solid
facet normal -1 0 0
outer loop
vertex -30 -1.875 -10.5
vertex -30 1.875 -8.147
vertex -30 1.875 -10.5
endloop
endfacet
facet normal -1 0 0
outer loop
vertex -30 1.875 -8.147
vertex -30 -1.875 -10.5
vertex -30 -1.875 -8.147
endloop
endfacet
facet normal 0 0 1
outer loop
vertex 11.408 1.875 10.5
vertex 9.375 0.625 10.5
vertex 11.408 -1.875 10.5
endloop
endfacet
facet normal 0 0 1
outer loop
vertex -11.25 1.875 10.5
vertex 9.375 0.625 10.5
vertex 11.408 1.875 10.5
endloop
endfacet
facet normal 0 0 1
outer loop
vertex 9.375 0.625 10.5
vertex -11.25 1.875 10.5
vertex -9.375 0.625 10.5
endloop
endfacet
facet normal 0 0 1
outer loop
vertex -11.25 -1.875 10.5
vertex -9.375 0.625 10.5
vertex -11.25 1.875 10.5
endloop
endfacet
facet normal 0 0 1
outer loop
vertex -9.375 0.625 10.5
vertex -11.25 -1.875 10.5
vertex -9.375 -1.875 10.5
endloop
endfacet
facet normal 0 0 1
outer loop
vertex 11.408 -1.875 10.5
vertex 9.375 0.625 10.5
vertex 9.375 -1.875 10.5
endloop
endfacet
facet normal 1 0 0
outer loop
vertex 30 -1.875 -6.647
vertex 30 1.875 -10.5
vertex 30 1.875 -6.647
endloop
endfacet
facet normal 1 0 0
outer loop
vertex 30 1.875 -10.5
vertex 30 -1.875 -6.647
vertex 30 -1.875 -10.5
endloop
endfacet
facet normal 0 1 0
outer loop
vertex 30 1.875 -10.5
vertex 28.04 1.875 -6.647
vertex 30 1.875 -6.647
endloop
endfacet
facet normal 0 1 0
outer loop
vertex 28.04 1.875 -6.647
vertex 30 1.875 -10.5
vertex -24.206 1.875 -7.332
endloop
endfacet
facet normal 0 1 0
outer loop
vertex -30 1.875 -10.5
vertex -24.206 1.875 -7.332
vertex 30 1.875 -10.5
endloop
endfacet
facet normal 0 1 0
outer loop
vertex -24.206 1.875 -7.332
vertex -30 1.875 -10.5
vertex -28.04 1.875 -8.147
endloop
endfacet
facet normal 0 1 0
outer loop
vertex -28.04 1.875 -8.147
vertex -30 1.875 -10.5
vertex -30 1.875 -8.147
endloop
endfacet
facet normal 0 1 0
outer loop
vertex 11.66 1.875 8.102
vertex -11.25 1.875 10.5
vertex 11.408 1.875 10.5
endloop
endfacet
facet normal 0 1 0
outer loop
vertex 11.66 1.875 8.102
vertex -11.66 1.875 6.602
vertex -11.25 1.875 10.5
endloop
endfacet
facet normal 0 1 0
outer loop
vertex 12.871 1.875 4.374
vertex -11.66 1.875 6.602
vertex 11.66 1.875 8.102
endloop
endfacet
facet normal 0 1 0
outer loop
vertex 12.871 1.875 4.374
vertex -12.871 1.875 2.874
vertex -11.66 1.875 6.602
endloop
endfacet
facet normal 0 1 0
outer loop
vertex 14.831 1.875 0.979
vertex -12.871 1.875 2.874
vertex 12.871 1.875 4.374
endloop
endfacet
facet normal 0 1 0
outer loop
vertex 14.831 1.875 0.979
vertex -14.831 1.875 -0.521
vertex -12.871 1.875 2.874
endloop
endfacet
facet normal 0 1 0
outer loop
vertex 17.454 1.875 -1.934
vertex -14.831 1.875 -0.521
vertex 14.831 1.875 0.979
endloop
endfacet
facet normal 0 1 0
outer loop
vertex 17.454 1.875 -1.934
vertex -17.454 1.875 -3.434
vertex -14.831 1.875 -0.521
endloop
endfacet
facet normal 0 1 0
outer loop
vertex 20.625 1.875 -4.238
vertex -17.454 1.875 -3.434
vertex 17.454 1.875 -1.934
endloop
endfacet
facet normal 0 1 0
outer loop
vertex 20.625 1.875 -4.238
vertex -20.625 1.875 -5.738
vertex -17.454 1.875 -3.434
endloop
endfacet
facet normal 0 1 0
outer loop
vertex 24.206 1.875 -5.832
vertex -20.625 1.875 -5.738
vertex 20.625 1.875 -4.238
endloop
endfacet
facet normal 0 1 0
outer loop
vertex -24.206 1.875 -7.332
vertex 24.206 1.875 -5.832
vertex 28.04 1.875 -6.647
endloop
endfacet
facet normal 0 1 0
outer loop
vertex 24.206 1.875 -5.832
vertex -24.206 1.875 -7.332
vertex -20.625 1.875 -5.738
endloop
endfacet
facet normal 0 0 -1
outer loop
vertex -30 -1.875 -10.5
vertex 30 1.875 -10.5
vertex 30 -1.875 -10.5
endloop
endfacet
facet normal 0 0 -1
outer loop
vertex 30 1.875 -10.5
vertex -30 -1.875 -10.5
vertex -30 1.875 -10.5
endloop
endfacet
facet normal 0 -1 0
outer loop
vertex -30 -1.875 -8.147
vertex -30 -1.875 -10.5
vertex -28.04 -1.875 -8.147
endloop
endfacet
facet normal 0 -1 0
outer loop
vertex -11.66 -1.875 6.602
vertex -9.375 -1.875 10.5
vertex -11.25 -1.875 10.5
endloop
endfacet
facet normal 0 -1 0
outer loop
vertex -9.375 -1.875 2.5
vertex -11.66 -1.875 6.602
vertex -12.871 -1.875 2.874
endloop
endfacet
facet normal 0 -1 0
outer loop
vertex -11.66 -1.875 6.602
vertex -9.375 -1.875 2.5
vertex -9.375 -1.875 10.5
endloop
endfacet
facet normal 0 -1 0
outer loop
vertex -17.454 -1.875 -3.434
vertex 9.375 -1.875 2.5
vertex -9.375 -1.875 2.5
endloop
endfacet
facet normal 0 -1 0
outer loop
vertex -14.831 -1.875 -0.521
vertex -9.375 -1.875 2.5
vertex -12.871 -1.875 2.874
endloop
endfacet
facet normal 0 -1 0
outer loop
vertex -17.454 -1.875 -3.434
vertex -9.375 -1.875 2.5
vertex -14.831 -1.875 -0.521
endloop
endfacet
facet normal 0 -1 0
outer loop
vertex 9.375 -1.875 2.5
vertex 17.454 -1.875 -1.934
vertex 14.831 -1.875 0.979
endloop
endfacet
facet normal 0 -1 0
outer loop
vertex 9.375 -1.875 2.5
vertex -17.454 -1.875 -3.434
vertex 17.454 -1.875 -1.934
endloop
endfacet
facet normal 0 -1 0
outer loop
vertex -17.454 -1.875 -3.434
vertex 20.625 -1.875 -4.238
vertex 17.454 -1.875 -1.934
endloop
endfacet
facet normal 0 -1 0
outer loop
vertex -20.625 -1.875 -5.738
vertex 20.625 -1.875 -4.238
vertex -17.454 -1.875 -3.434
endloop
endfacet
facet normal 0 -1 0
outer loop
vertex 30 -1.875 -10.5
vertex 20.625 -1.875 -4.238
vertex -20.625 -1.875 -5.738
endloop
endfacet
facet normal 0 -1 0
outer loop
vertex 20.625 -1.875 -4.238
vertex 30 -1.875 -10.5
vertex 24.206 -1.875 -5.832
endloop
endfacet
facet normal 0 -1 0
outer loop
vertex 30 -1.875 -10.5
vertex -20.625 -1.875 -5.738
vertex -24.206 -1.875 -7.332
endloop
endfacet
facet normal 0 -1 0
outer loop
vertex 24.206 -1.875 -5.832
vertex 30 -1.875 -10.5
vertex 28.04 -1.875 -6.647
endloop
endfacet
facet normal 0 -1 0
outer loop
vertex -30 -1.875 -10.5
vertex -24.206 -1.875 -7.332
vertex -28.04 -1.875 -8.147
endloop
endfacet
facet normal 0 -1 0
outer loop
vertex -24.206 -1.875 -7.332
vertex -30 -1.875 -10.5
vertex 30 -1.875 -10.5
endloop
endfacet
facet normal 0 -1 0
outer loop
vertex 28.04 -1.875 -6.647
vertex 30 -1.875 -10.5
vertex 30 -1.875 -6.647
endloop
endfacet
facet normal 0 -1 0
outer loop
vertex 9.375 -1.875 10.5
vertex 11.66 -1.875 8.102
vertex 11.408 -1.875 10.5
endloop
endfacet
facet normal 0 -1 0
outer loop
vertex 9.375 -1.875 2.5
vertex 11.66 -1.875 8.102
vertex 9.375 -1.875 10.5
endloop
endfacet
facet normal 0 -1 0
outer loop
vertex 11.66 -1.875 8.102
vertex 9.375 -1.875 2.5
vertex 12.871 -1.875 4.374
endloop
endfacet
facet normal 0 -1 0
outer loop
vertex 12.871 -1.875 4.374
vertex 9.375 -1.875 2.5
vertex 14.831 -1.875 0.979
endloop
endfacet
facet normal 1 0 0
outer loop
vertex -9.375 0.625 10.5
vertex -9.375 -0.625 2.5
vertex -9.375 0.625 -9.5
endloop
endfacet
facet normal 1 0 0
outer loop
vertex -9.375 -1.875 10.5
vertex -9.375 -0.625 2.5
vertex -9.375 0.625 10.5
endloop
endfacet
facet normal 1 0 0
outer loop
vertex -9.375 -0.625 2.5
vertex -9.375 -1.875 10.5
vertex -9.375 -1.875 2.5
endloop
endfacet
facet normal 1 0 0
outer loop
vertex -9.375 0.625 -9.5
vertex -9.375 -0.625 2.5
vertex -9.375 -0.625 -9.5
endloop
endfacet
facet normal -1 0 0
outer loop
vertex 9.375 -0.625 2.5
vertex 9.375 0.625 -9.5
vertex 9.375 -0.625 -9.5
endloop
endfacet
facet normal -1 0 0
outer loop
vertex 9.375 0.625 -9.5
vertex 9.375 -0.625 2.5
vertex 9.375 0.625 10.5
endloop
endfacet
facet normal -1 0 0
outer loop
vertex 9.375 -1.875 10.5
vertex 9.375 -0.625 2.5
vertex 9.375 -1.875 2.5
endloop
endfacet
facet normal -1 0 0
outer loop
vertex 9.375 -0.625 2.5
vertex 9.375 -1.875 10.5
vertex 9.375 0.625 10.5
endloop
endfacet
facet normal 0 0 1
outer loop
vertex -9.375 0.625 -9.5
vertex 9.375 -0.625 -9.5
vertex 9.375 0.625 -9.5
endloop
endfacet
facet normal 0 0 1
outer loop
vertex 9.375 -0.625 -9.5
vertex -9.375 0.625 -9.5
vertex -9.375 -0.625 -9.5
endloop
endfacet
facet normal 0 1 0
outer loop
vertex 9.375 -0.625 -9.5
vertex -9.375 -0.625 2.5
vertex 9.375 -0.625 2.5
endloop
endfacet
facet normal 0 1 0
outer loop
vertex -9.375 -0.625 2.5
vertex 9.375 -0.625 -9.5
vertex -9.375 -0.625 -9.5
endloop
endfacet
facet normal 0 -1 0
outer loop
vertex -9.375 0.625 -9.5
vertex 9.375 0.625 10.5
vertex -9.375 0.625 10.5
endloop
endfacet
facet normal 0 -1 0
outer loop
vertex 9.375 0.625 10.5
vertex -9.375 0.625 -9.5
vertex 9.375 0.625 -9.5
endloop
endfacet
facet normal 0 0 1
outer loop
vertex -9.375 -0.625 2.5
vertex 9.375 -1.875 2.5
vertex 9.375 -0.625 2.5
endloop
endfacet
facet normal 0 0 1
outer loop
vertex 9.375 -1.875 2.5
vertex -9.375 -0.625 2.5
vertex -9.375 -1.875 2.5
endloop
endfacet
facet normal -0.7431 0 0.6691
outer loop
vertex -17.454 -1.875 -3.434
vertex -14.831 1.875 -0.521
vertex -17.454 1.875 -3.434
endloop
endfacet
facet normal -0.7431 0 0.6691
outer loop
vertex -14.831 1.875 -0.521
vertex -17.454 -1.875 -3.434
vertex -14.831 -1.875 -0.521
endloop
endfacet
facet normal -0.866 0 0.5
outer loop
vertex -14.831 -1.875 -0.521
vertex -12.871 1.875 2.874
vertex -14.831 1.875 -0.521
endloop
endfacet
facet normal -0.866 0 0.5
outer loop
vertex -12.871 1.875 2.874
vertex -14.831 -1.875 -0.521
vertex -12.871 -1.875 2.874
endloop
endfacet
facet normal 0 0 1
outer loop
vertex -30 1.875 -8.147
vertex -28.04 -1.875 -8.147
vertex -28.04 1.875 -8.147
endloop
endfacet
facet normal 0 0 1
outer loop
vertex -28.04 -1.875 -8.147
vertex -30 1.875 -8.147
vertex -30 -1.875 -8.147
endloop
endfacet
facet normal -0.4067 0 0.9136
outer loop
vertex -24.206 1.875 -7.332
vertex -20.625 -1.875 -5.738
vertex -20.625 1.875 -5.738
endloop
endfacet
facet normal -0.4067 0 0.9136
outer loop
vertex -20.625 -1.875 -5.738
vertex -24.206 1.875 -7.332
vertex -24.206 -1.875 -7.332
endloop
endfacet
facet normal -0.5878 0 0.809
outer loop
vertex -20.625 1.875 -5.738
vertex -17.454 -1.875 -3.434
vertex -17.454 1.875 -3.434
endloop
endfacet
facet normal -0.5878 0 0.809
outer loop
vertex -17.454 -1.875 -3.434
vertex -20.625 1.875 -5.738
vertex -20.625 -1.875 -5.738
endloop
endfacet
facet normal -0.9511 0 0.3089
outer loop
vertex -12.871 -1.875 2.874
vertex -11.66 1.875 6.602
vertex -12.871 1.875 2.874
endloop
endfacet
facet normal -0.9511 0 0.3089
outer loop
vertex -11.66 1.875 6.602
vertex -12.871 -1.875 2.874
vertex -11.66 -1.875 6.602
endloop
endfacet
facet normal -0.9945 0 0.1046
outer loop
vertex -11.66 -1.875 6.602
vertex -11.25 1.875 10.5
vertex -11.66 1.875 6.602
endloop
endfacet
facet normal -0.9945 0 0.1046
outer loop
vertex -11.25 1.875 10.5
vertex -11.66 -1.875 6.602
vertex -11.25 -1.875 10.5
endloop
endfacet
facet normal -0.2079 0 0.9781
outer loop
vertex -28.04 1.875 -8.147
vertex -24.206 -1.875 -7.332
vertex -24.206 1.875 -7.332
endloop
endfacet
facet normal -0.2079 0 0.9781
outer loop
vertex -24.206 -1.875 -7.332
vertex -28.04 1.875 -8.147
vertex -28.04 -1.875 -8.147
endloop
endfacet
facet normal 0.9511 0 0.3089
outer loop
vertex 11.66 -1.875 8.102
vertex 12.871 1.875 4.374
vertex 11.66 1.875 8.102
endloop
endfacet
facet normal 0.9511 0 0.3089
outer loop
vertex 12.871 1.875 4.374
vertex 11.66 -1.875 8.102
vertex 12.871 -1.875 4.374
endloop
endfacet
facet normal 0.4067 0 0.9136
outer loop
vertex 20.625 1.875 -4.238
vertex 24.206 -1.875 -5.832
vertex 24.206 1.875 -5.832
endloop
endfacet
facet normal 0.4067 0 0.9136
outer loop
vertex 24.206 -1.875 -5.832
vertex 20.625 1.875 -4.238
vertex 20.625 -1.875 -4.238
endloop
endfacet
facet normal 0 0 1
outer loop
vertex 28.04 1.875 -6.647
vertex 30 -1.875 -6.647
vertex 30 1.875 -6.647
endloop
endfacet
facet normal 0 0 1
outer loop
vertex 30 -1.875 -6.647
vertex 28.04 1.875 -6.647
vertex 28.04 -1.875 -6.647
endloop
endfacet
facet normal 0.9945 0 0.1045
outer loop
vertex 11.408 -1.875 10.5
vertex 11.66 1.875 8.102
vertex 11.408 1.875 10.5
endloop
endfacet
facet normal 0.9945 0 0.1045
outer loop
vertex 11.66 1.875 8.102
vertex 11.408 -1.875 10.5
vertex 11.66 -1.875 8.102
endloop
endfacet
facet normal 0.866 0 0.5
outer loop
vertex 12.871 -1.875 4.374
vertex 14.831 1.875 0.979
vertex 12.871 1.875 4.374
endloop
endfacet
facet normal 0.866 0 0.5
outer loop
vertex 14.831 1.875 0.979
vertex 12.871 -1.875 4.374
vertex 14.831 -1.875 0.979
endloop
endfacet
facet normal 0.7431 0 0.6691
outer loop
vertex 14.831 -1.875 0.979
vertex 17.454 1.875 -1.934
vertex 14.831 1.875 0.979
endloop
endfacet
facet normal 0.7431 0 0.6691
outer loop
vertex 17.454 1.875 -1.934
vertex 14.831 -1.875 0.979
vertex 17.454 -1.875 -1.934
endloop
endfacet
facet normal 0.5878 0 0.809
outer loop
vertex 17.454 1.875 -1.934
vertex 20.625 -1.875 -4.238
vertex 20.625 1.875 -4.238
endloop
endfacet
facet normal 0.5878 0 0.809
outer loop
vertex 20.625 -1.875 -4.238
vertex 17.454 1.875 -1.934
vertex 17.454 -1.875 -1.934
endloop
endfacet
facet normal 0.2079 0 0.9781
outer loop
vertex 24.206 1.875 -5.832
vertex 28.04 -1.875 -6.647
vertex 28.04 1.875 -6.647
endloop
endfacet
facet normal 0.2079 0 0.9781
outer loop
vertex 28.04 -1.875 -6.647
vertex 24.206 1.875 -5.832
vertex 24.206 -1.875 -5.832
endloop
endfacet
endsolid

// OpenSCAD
// This is likely what you will want to change if you need it to hold up 
// heavier cards.
span=60;

width=18.75;
thickness=1.25;
height=20;
slot=12;

module stand()
{difference(){
	cube([span,thickness*3,height+1],true);

	translate([0,0,1])
		cube([width,thickness,height+1],true);
	translate([0,-thickness*1.5,1+slot])
		cube([width,thickness*3,height+1],true);
	translate([-span/2,thickness*3,(height+1)/2])
	rotate([90,0,0])
		cylinder(r=(span/2-width/2-thickness*1.5),h=thickness*10);
	translate([span/2,thickness*5,(height*1.2)/2])
	rotate([90,0,0])
		cylinder(r=(span/2-width/2-thickness*1.5),h=thickness*10);

}}


stand();
